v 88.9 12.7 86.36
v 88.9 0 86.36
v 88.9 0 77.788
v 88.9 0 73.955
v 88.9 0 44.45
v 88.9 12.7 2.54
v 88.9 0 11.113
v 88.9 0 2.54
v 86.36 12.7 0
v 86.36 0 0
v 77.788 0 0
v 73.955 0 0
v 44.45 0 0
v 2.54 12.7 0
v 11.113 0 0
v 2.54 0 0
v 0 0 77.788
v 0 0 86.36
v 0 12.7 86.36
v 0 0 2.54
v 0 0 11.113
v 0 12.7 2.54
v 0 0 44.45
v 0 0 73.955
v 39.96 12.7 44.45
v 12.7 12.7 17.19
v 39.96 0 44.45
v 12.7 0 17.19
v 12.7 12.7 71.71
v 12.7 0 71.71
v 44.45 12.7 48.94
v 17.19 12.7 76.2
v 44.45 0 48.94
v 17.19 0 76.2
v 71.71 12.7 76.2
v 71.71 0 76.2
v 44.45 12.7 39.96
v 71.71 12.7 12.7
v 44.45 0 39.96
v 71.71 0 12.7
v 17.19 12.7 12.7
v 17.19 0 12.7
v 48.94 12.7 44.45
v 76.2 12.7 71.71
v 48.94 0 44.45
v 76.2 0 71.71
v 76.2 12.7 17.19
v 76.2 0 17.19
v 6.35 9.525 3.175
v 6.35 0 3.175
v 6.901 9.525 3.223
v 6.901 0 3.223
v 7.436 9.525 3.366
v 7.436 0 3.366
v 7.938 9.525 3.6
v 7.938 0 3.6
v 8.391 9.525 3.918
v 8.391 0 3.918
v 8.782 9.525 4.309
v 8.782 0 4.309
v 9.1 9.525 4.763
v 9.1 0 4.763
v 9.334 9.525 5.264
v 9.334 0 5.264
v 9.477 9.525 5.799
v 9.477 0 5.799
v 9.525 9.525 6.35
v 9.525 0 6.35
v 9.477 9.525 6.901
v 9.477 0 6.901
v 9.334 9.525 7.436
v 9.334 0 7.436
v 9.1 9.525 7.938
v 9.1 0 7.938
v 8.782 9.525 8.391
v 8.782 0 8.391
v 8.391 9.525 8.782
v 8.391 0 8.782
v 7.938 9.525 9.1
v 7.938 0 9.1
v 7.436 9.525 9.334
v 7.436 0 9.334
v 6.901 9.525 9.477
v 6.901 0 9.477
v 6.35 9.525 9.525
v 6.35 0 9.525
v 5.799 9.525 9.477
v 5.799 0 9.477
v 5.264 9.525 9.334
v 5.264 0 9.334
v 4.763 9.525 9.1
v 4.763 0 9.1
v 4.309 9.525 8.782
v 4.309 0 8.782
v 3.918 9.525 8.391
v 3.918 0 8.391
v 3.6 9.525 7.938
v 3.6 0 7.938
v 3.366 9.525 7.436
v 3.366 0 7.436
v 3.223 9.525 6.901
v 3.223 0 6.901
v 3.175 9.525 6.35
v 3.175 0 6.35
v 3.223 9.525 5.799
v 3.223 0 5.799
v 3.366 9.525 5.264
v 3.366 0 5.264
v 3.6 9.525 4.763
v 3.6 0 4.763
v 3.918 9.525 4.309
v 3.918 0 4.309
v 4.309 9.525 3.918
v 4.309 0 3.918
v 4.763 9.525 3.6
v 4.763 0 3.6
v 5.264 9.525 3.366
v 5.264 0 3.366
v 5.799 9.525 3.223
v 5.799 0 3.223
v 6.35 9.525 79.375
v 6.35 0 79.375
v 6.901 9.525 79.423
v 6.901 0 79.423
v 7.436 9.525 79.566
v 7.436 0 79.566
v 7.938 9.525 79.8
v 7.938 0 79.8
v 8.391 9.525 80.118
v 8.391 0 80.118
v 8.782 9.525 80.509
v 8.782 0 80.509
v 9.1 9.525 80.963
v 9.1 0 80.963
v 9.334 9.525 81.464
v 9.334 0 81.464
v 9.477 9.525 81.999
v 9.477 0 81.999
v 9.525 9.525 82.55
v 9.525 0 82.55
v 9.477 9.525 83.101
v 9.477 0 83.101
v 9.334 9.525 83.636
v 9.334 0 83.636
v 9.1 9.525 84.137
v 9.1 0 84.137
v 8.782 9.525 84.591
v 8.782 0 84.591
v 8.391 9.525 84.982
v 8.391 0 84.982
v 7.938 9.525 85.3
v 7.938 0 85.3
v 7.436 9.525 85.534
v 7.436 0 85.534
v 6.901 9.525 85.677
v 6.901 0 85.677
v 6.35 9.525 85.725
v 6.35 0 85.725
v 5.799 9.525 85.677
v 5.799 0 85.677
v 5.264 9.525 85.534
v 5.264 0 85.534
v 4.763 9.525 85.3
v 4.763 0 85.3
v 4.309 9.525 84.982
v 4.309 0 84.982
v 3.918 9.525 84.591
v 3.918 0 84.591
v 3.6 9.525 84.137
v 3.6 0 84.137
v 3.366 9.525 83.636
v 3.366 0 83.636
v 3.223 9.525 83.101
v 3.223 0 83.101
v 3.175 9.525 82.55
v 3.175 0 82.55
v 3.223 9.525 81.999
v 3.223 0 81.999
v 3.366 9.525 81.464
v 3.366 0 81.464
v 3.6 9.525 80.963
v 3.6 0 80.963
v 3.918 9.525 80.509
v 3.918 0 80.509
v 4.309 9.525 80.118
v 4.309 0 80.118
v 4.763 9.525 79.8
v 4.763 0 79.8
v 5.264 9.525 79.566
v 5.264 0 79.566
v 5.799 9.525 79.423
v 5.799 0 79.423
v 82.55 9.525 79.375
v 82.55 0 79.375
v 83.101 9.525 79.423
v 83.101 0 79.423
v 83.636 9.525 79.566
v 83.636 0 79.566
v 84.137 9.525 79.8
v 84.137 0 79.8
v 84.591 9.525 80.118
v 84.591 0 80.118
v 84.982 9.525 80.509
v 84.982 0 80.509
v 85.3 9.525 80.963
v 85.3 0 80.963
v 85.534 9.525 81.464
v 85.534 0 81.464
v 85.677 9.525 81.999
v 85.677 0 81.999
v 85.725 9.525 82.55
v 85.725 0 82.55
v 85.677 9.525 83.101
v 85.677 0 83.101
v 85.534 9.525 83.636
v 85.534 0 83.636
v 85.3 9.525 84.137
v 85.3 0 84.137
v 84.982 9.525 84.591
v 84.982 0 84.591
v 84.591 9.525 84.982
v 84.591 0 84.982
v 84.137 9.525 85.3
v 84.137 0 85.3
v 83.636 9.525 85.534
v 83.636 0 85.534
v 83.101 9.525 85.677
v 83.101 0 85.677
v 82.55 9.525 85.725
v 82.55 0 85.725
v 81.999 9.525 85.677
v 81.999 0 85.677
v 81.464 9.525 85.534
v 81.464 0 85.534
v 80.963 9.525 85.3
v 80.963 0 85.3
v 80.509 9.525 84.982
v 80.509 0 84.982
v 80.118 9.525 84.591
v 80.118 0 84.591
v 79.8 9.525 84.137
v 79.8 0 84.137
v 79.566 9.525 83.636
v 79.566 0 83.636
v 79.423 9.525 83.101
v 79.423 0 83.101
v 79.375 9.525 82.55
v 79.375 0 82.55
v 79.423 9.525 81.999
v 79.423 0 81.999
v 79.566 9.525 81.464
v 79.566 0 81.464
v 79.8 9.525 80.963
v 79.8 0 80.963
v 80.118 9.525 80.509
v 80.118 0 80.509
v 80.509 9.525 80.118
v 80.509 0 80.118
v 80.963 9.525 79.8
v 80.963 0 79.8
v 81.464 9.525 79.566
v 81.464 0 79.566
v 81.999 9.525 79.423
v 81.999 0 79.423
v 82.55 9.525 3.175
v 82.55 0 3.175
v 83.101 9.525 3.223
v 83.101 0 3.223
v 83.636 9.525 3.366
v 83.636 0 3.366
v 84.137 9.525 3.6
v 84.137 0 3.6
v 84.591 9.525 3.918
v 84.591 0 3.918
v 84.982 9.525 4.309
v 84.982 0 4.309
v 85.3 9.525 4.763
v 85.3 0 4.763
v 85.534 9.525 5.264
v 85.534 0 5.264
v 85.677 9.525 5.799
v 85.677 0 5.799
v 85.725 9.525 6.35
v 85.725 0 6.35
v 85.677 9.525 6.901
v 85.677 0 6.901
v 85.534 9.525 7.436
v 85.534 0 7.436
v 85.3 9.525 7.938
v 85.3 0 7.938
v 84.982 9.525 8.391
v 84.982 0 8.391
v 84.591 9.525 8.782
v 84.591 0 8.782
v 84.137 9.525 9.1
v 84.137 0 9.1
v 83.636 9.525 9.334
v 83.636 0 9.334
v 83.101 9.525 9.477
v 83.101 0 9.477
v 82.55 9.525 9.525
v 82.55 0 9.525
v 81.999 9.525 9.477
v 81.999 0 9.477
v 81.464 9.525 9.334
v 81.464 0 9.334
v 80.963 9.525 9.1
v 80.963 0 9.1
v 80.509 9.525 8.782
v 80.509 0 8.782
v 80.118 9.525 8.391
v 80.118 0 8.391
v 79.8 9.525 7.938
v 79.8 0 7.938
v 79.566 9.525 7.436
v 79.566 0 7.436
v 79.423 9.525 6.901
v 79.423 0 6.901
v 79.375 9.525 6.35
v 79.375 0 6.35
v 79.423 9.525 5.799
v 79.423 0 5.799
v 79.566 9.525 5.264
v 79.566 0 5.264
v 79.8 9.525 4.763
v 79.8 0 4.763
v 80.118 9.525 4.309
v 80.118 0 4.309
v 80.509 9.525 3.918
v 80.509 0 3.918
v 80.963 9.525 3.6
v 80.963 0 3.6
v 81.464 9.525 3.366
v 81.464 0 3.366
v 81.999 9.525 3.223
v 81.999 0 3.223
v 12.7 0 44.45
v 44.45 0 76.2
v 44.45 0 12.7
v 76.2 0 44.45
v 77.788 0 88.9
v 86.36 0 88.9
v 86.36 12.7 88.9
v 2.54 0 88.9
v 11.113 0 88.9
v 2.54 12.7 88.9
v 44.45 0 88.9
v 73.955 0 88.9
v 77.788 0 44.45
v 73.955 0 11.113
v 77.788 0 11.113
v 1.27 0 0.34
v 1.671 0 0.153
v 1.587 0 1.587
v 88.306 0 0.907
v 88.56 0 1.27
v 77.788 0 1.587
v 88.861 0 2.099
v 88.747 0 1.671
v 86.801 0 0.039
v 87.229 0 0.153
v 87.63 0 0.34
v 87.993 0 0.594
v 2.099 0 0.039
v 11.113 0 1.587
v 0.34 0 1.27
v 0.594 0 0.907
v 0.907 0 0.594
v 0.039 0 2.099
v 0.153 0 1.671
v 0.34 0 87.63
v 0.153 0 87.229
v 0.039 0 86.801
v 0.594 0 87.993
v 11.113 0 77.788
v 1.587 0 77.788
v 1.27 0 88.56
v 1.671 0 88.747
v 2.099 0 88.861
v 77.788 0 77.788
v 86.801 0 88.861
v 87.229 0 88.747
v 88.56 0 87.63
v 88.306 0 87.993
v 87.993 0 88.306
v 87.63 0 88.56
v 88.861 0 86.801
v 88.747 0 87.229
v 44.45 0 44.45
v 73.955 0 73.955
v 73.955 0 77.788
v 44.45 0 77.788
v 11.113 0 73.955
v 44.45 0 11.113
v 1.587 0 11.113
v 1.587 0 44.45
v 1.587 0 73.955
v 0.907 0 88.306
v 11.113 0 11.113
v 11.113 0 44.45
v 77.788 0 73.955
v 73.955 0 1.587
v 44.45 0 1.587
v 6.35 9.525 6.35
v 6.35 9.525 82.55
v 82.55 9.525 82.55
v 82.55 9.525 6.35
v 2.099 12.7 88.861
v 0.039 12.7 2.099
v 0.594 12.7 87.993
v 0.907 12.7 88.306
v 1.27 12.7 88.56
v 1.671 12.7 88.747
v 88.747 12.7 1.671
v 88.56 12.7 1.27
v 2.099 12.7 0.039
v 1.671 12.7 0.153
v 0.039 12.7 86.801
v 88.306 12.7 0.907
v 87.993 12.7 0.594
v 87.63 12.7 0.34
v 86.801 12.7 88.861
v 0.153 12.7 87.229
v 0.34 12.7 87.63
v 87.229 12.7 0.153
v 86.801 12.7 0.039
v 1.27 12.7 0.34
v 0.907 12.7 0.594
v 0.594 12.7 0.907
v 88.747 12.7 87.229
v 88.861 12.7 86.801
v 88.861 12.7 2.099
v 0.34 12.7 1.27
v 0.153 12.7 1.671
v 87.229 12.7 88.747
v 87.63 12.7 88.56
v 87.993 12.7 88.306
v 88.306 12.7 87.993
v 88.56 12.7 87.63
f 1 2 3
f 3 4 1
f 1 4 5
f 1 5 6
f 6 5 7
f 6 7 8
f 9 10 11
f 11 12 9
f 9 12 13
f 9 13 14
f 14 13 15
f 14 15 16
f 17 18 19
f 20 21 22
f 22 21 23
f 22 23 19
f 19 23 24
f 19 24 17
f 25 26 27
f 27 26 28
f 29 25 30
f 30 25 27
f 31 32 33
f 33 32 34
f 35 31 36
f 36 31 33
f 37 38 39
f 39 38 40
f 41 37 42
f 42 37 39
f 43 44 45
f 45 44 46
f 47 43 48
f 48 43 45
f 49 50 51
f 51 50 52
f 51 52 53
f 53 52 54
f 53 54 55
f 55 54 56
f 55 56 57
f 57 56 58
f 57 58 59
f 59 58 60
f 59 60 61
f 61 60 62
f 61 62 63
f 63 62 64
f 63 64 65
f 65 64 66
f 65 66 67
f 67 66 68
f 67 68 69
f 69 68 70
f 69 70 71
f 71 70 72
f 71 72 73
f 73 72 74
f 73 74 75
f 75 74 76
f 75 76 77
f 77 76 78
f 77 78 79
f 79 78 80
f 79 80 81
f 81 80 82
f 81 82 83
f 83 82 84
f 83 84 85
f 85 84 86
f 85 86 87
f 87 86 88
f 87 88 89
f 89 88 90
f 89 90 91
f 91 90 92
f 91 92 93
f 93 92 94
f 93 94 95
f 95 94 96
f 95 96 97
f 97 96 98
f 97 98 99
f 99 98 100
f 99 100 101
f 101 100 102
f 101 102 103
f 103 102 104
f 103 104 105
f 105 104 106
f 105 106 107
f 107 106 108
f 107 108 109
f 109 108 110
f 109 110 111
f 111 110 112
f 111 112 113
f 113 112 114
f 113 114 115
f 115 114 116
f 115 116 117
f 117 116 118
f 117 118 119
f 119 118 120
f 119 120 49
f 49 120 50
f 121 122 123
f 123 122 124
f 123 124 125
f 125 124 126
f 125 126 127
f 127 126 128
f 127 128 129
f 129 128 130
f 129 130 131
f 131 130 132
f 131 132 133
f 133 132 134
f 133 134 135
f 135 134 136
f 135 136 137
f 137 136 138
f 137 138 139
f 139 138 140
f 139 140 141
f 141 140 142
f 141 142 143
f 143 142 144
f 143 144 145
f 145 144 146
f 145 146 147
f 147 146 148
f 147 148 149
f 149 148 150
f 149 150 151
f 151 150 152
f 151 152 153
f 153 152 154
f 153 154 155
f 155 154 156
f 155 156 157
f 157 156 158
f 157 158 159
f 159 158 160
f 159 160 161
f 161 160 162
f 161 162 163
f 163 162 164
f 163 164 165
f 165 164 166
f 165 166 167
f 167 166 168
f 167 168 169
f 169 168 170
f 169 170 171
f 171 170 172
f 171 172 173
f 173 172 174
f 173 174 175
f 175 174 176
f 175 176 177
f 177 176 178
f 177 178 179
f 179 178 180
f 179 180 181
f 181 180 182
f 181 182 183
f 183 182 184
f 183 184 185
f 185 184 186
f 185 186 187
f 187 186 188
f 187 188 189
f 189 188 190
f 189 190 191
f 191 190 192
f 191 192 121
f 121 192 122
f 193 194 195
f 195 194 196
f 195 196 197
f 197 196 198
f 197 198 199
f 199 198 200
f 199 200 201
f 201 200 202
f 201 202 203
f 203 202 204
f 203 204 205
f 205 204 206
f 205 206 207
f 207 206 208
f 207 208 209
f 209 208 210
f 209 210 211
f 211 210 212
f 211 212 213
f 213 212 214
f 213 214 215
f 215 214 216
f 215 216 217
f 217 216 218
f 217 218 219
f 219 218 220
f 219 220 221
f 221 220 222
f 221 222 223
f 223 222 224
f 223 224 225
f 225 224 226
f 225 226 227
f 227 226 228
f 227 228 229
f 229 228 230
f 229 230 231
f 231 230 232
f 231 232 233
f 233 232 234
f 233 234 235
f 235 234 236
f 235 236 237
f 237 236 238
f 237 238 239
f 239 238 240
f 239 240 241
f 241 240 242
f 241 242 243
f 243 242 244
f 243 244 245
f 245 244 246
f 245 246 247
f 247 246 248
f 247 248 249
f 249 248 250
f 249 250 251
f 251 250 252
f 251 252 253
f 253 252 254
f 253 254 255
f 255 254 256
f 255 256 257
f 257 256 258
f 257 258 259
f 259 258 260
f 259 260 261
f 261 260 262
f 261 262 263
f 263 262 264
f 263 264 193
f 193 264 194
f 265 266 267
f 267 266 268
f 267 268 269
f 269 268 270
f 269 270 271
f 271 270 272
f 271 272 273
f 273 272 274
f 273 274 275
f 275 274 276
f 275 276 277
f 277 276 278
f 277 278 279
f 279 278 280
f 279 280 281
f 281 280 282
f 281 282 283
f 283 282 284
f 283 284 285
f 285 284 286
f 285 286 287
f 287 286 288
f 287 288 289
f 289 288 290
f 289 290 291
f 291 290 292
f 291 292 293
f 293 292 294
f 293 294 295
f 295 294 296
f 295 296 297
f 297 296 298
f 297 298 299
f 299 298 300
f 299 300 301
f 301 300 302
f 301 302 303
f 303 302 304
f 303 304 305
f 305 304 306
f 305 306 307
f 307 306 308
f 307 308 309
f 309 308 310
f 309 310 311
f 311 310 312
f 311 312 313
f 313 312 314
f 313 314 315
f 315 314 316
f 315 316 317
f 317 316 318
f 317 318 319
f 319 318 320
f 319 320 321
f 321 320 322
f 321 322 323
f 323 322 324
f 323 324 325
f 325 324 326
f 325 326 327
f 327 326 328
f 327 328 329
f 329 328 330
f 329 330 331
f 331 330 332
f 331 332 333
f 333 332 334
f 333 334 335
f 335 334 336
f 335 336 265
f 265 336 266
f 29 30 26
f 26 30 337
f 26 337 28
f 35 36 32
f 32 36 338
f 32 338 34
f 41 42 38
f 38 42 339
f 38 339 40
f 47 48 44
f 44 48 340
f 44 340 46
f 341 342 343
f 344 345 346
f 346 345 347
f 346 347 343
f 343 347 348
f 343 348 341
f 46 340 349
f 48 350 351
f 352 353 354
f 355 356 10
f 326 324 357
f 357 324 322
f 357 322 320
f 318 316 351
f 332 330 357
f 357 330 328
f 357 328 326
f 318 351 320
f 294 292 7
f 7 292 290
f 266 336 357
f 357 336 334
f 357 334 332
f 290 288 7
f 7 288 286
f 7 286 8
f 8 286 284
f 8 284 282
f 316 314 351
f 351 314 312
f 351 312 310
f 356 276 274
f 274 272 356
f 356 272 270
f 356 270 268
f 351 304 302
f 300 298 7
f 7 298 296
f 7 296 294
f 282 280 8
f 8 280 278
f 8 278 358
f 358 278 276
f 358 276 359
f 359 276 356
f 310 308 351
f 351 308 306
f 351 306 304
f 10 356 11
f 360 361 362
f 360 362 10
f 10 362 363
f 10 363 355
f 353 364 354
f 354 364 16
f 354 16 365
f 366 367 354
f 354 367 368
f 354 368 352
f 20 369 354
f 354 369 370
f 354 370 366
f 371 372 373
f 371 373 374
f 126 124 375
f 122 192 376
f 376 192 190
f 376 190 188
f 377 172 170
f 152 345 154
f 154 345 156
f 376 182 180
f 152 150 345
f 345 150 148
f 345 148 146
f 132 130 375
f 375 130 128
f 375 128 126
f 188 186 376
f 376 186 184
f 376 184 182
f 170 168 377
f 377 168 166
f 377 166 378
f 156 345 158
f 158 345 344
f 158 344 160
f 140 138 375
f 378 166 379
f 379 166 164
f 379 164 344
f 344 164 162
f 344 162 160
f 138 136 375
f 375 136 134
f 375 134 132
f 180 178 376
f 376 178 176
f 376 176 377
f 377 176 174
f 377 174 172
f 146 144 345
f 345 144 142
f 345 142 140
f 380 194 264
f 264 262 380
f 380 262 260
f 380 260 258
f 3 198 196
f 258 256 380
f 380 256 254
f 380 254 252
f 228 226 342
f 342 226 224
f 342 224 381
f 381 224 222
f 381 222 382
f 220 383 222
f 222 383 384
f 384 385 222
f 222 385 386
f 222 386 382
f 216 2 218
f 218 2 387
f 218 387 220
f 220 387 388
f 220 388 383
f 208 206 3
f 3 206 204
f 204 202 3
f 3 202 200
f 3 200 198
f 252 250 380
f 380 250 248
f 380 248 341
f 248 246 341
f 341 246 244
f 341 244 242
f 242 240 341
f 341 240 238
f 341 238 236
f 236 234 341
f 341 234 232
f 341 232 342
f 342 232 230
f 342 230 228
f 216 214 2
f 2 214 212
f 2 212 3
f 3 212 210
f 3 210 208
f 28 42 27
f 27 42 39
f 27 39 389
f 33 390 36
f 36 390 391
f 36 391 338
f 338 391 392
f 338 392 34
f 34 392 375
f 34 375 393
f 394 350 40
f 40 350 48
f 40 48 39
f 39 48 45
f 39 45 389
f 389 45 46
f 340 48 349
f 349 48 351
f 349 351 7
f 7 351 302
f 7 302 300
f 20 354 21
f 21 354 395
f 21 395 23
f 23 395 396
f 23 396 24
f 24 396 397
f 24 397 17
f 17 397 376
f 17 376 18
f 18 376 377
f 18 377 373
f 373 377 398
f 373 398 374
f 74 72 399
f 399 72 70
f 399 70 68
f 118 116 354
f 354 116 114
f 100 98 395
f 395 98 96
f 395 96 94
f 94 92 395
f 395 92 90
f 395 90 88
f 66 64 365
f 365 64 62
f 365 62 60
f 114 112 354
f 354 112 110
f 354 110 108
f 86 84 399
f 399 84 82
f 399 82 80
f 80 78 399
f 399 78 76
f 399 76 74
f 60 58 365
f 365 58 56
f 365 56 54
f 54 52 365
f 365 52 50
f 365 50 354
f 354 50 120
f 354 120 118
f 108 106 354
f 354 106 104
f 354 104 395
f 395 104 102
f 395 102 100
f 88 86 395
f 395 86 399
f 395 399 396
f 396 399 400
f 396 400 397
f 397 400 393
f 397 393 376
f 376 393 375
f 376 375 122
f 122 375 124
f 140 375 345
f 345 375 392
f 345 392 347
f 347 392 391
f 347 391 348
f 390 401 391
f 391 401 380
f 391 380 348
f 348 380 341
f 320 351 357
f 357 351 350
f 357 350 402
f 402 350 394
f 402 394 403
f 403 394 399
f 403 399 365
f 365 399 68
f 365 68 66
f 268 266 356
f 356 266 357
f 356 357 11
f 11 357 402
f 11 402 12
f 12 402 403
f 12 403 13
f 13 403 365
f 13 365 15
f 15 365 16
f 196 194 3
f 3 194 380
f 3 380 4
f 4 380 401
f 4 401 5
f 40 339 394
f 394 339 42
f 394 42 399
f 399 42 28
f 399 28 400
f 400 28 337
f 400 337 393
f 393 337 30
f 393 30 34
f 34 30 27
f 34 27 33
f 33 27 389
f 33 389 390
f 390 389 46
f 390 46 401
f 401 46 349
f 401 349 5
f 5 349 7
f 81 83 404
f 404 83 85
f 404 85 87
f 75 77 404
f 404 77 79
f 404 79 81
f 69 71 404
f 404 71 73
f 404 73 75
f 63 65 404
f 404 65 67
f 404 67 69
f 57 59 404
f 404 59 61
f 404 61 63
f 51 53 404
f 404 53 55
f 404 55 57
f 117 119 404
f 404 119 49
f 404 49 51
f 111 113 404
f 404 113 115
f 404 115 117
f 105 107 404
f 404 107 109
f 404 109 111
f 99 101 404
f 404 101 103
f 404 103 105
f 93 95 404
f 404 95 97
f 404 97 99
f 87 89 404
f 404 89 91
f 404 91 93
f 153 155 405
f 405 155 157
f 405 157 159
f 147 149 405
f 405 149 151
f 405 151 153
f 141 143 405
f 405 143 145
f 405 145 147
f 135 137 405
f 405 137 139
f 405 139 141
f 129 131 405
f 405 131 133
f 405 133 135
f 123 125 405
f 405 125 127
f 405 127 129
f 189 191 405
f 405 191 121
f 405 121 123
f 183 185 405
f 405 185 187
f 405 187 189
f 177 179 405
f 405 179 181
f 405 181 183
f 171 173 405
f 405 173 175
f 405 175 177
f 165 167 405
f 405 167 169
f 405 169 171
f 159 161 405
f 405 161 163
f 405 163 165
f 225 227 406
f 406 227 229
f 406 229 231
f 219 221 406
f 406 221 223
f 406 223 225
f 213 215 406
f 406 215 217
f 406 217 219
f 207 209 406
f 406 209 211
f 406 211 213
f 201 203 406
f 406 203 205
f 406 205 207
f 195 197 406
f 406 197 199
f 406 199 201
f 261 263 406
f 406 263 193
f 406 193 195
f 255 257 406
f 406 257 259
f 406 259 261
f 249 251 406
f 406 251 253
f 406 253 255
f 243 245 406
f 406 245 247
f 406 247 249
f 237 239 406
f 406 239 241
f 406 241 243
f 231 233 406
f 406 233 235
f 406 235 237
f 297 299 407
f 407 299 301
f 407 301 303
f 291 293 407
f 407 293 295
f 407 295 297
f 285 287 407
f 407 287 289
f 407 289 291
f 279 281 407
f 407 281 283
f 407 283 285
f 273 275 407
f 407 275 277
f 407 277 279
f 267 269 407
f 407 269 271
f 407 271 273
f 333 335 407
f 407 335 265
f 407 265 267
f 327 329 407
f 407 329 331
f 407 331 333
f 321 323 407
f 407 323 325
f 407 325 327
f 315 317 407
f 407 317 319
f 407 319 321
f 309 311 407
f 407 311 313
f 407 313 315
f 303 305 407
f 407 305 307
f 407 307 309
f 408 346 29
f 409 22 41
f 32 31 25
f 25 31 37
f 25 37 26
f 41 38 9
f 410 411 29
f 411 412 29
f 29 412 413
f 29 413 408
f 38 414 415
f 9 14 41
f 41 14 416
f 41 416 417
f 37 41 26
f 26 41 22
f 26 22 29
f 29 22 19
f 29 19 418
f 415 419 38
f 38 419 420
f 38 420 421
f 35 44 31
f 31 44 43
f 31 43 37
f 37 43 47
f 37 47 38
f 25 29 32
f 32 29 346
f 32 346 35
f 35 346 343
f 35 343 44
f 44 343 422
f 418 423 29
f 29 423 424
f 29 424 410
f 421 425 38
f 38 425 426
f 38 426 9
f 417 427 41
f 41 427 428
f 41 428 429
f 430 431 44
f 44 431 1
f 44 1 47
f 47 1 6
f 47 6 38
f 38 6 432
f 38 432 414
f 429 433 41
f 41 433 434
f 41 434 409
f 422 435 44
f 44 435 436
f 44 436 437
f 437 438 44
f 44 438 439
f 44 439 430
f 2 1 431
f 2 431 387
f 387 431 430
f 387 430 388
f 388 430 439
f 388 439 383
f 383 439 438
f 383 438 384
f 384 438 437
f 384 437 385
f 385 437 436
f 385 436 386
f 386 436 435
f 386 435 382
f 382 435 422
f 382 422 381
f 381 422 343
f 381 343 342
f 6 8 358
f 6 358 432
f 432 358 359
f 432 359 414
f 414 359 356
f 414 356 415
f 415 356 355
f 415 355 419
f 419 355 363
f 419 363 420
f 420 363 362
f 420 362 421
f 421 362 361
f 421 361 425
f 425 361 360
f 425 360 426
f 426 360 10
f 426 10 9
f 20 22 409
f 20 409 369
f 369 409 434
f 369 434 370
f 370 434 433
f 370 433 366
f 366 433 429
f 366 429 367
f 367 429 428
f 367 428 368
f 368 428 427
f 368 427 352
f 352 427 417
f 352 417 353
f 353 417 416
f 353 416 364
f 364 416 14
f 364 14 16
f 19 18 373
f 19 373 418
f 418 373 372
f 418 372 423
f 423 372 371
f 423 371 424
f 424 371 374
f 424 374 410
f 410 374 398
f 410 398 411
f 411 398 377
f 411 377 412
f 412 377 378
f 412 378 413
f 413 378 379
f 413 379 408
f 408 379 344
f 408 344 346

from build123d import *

# Parameters (mm, degrees)
SKETCH1_W           = 88.9
SKETCH1_H           = 88.9
SKETCH1_R           = 3.175
BOSS_EXTRUDE1_DEPTH = 9.525
SKETCH2_W           = 88.9
SKETCH2_H           = 88.9
BOSS_EXTRUDE2_DEPTH = 3.175
FILLET1_R           = 2.54


with BuildPart() as part:
    # Sketch1 → Boss-Extrude1 (new body)
    with BuildSketch(Plane(origin=(0, 0, 0), x_dir=(1, 0, 0), z_dir=(0, 1, 0))):
        with Locations((44.45, -44.45)):
            Rectangle(SKETCH1_W, SKETCH1_H)
        with Locations((6.35, -82.55)):
            Circle(SKETCH1_R, mode=Mode.SUBTRACT)
        with Locations((82.55, -82.55)):
            Circle(SKETCH1_R, mode=Mode.SUBTRACT)
        Polygon((71.709871939, -76.2), (17.190128061, -76.2), (44.45, -48.940128061), align=None, mode=Mode.SUBTRACT)
        Polygon((12.7, -71.709871939), (12.7, -17.190128061), (39.959871939, -44.45), align=None, mode=Mode.SUBTRACT)
        Polygon((44.45, -39.959871939), (17.190128061, -12.7), (71.709871939, -12.7), align=None, mode=Mode.SUBTRACT)
        with Locations((6.35, -6.35)):
            Circle(SKETCH1_R, mode=Mode.SUBTRACT)
        Polygon((48.940128061, -44.45), (76.2, -17.190128061), (76.2, -71.709871939), align=None, mode=Mode.SUBTRACT)
        with Locations((82.55, -6.35)):
            Circle(SKETCH1_R, mode=Mode.SUBTRACT)
    extrude(amount=BOSS_EXTRUDE1_DEPTH)

    # Sketch2 → Boss-Extrude2 (add)
    with BuildSketch(Plane(origin=(0, 9.525, 0), x_dir=(1, 0, 0), z_dir=(0, 1, 0))):
        with Locations((44.45, -44.45)):
            Rectangle(SKETCH2_W, SKETCH2_H)
        Polygon((44.45, -48.940128061), (71.709871939, -76.2), (17.190128061, -76.2), align=None, mode=Mode.SUBTRACT)
        Polygon((76.2, -17.190128061), (76.2, -71.709871939), (48.940128061, -44.45), align=None, mode=Mode.SUBTRACT)
        Polygon((44.45, -39.959871939), (71.709871939, -12.7), (17.190128061, -12.7), align=None, mode=Mode.SUBTRACT)
        Polygon((12.7, -71.709871939), (39.959871939, -44.45), (12.7, -17.190128061), align=None, mode=Mode.SUBTRACT)
    extrude(amount=BOSS_EXTRUDE2_DEPTH)

    # Fillet1
    fillet1_edges = [part.edges().sort_by_distance(p)[0] for p in [
        (88.9, 6.35, 88.9),
        (0, 6.35, 88.9),
        (0, 6.35, 0),
        (88.9, 6.35, 0),
    ]]
    fillet(fillet1_edges, radius=FILLET1_R)


solid = part.part
